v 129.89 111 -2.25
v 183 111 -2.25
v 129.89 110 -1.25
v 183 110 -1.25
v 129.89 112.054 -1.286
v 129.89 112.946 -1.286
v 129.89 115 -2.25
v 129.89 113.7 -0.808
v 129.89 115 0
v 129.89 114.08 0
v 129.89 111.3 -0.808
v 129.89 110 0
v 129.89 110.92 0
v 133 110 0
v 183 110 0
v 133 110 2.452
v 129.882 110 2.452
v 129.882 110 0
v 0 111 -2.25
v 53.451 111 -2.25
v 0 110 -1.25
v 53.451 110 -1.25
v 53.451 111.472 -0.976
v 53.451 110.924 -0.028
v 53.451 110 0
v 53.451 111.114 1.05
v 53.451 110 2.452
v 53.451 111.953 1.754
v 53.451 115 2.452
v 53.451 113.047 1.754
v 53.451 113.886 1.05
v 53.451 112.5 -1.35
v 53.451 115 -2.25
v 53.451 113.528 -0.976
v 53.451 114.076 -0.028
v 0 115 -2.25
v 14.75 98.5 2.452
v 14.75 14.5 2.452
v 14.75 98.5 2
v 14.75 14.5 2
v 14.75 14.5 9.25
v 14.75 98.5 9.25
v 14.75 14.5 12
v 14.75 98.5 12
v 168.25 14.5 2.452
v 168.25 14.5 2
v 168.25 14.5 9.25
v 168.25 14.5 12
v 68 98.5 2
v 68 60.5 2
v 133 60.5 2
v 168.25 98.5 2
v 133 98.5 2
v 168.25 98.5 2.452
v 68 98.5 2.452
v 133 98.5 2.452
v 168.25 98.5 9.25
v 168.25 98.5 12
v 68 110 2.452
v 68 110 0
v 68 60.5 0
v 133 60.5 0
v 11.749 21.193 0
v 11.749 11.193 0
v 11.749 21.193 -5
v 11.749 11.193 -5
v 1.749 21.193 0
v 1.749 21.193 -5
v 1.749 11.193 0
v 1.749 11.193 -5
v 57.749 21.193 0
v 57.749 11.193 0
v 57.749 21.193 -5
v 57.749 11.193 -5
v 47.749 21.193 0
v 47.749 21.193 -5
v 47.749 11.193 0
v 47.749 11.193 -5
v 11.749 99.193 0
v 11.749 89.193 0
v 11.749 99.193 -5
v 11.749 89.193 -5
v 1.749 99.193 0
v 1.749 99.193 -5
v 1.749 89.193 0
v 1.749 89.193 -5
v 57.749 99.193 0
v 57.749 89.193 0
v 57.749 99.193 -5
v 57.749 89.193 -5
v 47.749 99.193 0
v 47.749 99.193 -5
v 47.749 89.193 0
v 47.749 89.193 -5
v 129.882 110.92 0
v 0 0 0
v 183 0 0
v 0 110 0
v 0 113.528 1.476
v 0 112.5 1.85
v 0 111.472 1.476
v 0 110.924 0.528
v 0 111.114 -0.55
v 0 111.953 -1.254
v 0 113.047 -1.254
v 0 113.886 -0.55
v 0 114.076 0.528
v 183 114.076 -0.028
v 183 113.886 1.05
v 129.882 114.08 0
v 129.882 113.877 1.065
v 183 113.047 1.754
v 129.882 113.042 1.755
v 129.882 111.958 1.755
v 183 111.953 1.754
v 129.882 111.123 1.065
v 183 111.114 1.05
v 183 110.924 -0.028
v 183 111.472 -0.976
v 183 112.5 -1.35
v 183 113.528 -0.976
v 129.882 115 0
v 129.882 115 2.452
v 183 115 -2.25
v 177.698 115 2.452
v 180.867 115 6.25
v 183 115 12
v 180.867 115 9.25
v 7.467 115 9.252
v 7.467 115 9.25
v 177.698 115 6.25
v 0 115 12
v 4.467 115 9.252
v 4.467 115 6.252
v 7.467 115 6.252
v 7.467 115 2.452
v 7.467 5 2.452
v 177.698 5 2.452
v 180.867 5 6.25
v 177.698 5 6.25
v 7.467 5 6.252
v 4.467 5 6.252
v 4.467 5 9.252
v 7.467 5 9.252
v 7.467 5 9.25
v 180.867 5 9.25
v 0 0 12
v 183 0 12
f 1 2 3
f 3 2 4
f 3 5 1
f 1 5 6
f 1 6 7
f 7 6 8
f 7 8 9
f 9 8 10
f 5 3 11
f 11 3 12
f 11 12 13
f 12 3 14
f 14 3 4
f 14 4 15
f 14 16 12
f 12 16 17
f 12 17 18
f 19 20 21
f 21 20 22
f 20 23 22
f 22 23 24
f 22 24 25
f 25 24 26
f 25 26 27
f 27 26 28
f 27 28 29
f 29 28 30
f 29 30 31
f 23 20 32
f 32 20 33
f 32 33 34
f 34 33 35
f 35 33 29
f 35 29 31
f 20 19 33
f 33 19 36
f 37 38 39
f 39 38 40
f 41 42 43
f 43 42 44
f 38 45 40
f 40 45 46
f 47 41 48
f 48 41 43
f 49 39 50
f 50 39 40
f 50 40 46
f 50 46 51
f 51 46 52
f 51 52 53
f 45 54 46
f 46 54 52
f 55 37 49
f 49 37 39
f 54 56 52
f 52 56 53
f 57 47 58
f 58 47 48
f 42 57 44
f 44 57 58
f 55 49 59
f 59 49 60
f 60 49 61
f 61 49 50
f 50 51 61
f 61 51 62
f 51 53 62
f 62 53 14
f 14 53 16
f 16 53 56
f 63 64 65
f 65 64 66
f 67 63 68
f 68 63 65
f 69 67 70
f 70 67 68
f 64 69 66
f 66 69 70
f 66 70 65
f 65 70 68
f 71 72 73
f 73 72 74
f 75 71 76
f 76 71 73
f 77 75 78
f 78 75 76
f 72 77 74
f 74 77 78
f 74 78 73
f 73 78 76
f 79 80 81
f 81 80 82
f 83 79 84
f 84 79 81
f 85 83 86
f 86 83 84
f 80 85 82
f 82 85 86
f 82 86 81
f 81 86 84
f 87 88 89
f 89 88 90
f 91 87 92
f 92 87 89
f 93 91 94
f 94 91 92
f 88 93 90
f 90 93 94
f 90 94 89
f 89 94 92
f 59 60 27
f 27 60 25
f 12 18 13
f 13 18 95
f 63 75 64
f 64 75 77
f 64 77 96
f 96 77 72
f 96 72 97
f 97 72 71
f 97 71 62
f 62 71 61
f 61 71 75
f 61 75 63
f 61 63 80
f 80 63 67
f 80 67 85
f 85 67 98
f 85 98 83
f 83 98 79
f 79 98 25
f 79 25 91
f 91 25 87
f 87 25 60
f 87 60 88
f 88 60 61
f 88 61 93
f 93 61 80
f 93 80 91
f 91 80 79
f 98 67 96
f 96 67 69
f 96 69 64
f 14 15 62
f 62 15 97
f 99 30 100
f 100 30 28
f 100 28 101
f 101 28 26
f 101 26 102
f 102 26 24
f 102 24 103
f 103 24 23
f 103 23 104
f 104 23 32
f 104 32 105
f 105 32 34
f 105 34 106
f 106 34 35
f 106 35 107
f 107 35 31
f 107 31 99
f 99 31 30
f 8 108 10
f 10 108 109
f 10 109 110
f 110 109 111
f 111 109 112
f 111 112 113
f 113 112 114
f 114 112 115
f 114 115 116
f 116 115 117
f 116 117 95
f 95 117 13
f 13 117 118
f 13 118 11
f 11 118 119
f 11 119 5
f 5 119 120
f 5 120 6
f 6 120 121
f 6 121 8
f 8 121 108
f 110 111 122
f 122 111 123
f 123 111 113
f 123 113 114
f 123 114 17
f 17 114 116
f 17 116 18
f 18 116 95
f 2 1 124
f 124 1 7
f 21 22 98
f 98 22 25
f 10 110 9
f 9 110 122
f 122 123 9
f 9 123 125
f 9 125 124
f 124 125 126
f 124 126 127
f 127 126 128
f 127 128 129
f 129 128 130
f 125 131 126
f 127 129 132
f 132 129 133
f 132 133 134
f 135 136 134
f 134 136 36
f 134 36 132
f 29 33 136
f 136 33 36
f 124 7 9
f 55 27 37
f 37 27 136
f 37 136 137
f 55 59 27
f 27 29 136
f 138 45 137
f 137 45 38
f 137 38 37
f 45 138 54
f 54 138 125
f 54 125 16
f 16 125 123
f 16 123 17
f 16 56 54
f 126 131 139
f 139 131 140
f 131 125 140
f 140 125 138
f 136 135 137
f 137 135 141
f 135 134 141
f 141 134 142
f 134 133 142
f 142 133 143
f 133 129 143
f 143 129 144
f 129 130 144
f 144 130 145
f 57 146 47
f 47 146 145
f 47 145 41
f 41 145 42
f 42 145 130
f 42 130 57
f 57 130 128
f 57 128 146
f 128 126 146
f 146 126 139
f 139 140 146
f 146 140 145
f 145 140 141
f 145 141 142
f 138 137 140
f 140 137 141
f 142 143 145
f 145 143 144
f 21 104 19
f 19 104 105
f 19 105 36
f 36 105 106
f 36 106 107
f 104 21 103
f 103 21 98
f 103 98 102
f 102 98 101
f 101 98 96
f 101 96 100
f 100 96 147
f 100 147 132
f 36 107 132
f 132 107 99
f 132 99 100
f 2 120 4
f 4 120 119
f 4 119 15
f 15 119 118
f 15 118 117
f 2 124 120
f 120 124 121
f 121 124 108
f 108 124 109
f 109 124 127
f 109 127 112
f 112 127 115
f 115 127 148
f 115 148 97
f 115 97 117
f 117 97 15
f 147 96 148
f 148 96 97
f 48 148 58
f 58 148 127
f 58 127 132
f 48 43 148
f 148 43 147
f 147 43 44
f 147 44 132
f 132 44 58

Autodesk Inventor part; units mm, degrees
ref_plane "YZ Plane" through (0, 0, 0) normal (1, 0, 0) x (0, 1, 0)
ref_plane "XZ Plane" through (0, 0, 0) normal (0, 1, 0) x (-1, 0, 0)
sketch "Sketch1" plane through (0, 0, 0) normal (0, 0, 1) x (1, 0, 0)
  line L0 (0, 0) -> (183, 0)
  line L1 (183, 0) -> (183, 115)
  line L2 (183, 115) -> (0, 115)
  line L3 (0, 115) -> (0, 0)
  dimension "d0" = 183
  dimension "d1" = 115
extrude "Extrusion1" add sketch "Sketch1" along normal blind 12
sketch "Sketch2" plane through (0, 115, 0) normal (0, 1, 0) x (1, 0, 0)
  line L0 (0, 0) -> (0, -12) projected
  line L1 (0, -12) -> (183, -12) projected
  line L2 (183, 0) -> (0, 0) projected
  line L3 (7.4669, -2.4521) -> (177.6982, -2.4521)
  line L4 (177.8669, -9.25) -> (7.4669, -9.25)
  line L5 (7.4669, -6.2521) -> (7.4669, -2.4521)
  line L6 (7.4669, -9.2521) -> (7.4669, -9.25)
  line L7 (177.6982, -6.25) -> (177.6982, -2.4521)
  line L8 (7.4669, -9.2521) -> (4.4669, -9.2521)
  line L9 (4.4669, -9.2521) -> (4.4669, -6.2521)
  line L10 (4.4669, -6.2521) -> (7.4669, -6.2521)
  line L11 (177.8669, -9.25) -> (180.8669, -9.25)
  line L12 (180.8669, -9.25) -> (180.8669, -6.25)
  line L13 (180.8669, -6.25) -> (177.6982, -6.25)
  point P0 (0, -6)
  point P1 (0, -6)
  point P2 (0, -6)
  point P3 (0, -6)
  point P4 (91.5, -2.4521)
  point P5 (91.5, 0)
  point P6 (0, -6)
  point P7 (7.3, -9.25)
  dimension "d75" = 170.4
  dimension "d76" = 6.8
  dimension "d122" = 2.75
  dimension "d123" = 6.8
  dimension "d131" = 3
  dimension "d132" = 3
  dimension "d134" = 3
  dimension "d135" = 3
  dimension "d136" = 90
ref_plane "Work Plane1" through (91.5, 0, 0) normal (-1, 0, 0) x (0, 0, 1)
sketch "Sketch6" plane through (91.5, 0, 0) normal (-1, 0, 0) x (0, 0, 1)
  point P0 (0, 115)
  point P1 (0, 101)
sketch "Sketch7" plane through (0, 0, 0) normal (0, 0, -1) x (-1, 0, 0)
  line L0 (-146.5, 112) -> (-36.5, 112)
  line L1 (-36.5, 112) -> (-36.5, 115)
  line L2 (-36.5, 115) -> (-146.5, 115)
  line L3 (-146.5, 115) -> (-146.5, 112)
  line L4 (-183, 115) -> (0, 115) projected
  point P0 (0, 0)
  point P1 (-91.5, 115)
  point P2 (-91.5, 115)
  dimension "d34" = 110
  dimension "d35" = 3
sketch "Sketch14" plane through (0, 0, 12) normal (-1, 0, 0) x (0, 0, 1)
  line L0 (-9, 101) -> (-11, 101) projected
  line L1 (-11, 101) -> (-12, 98.8551)
  line L2 (-12, 0) -> (-12, 115) projected
  line L3 (-9, 101) -> (-6.8161, 101) projected
  line L4 (-9, 101) -> (-11, 101)
  line L5 (-9, 101) -> (-9, 98.8551)
sketch "Sketch15" plane through (183, 0, 12) normal (1, 0, 0) x (0, 0, -1)
  line L0 (11, 101) -> (12, 98.8551) projected
  line L1 (9, 101) -> (11, 101) projected
  line L2 (12, 115) -> (12, 0) projected
  point P0 (12, 0)
extrude "Extrusion15" cut sketch "Sketch2" against normal blind 110
sketch "Sketch18" plane through (0, 0, 12) normal (0, 0, 1) x (1, 0, 0)
  line L0 (14.75, 98.5) -> (168.25, 98.5)
  line L1 (168.25, 98.5) -> (168.25, 14.5)
  line L2 (168.25, 14.5) -> (14.75, 14.5)
  line L3 (14.75, 14.5) -> (14.75, 98.5)
  line L4 (183, 0) -> (0, 0) projected
  line L5 (0, 115) -> (183, 115) projected
  point P0 (91.5, 98.5)
  point P1 (91.5, 115)
  dimension "d88" = 153.5
  dimension "d89" = 84
  dimension "d90" = 14.5
sketch "Sketch19" plane through (0, 115, 0) normal (0, 1, 0) x (1, 0, 0)
  line L0 (183, 0) -> (0, 0) projected
  line L1 (7.4669, -2.4521) -> (177.6982, -2.4521) projected
  line L2 (129.8823, -2.4521) -> (129.8823, 0)
  line L3 (53.4515, -2.4521) -> (53.4515, 0)
  line L4 (129.8823, -2.4521) -> (53.4515, -2.4521)
  line L5 (53.4515, 0) -> (129.8823, 0)
  point P0 (53.4515, 0)
  point P1 (53.4515, -2.4521)
extrude "Extrusion16" cut sketch "Sketch19" against normal blind 5
sketch "Sketch21" plane through (0, 0, 0) normal (0, 0, -1) x (-1, 0, 0)
  line L0 (-129.8823, 110) -> (-53.4515, 110) projected
  line L1 (0, 115) -> (-183, 115) projected
  line L2 (-53.4515, 110) -> (0, 110)
  line L3 (0, 110) -> (0, 115)
  line L4 (0, 115) -> (-53.4515, 115)
  line L5 (-53.4515, 115) -> (-53.4515, 110)
  line L6 (-183, 0) -> (-183, 115) projected
  line L7 (-183, 115) -> (-129.8898, 115)
  line L8 (-129.8898, 115) -> (-129.8898, 110)
  line L9 (-129.8898, 110) -> (-183, 110)
  line L10 (-183, 110) -> (-183, 115)
  point P0 (0, 0)
  point P1 (-129.8898, 115)
extrude "Extrusion17" add sketch "Sketch21" along normal blind 2.25
sketch "Sketch22" plane through (0, 0, 12) normal (-1, 0, 0) x (0, 0, 1)
  line L0 (-14.25, 115) -> (0, 115) projected
  line L1 (-14.25, 115) -> (-9.25, 115)
  line L2 (-9.25, 115) -> (-9.25, 110)
  line L3 (-12, 110) -> (-14.25, 110) projected
  line L4 (-9.25, 110) -> (-14.25, 110)
  circle A0 centre (-11.75, 112.5) radius 1.6
  point P0 (-12, 0)
  dimension "d95" = 5
  dimension "d96" = 5
  dimension "d97" = 90
  dimension "d98" = 3.2
extrude "Extrusion18" cut sketch "Sketch22" against normal through all
sketch "Sketch23" plane through (0, 0, 0) normal (0, 0, -1) x (-1, 0, 0)
  line L0 (-36.5, 115) -> (-146.5, 115) projected
  line L1 (-183, 110) -> (-129.8898, 110) projected
  line L2 (-133, 110) -> (-68, 110)
  line L3 (-68, 110) -> (-68, 60.5)
  line L4 (-68, 60.5) -> (-133, 60.5)
  line L5 (-133, 60.5) -> (-133, 110)
  line L6 (0, 110) -> (0, 0) projected
  line L7 (-183, 0) -> (-183, 110) projected
  dimension "d101" = 49.5
  dimension "d102" = 68
  dimension "d103" = 50
extrude "Extrusion19" cut sketch "Sketch23" against normal up to surface (9.25 mm away)
sketch "Sketch24" plane through (0, 0, 0) normal (0, 0, -1) x (-1, 0, 0)
  line L0 (-57.7492, 99.1931) -> (-47.7492, 99.1931)
  line L1 (-47.7492, 99.1931) -> (-47.7492, 89.1931)
  line L2 (-47.7492, 89.1931) -> (-57.7492, 89.1931)
  line L3 (-57.7492, 89.1931) -> (-57.7492, 99.1931)
  line L4 (-11.7492, 99.1931) -> (-1.7492, 99.1931)
  line L5 (-1.7492, 99.1931) -> (-1.7492, 89.1931)
  line L6 (-1.7492, 89.1931) -> (-11.7492, 89.1931)
  line L7 (-11.7492, 89.1931) -> (-11.7492, 99.1931)
  line L8 (-57.7492, 21.1931) -> (-47.7492, 21.1931)
  line L9 (-47.7492, 21.1931) -> (-47.7492, 11.1931)
  line L10 (-47.7492, 11.1931) -> (-57.7492, 11.1931)
  line L11 (-57.7492, 11.1931) -> (-57.7492, 21.1931)
  line L12 (-11.7492, 21.1931) -> (-1.7492, 21.1931)
  line L13 (-1.7492, 21.1931) -> (-1.7492, 11.1931)
  line L14 (-1.7492, 11.1931) -> (-11.7492, 11.1931)
  line L15 (-11.7492, 11.1931) -> (-11.7492, 21.1931)
  point P0 (0, 0)
  point P1 (-57.7492, 16.1931)
  point P2 (-57.7492, 94.1931)
  point P3 (-6.7492, 11.1931)
  point P4 (-6.7492, 99.1931)
  dimension "d108" = 10
  dimension "d109" = 10
  dimension "d110" = 10
  dimension "d111" = 10
  dimension "d112" = 10
  dimension "d113" = 10
  dimension "d114" = 10
  dimension "d115" = 10
  dimension "d116" = 56
  dimension "d118" = 88
  dimension "d137" = 88
extrude "Extrusion20" add sketch "Sketch24" along normal blind 5
extrude "Extrusion21" cut sketch "Sketch18" against normal blind 10
chamfer "Chamfer1" distance 1 angle 45 2 edges at (26.7257, 110, -2.25) (156.4449, 110, -2.25)
properties part number "stojan - správná verze"
